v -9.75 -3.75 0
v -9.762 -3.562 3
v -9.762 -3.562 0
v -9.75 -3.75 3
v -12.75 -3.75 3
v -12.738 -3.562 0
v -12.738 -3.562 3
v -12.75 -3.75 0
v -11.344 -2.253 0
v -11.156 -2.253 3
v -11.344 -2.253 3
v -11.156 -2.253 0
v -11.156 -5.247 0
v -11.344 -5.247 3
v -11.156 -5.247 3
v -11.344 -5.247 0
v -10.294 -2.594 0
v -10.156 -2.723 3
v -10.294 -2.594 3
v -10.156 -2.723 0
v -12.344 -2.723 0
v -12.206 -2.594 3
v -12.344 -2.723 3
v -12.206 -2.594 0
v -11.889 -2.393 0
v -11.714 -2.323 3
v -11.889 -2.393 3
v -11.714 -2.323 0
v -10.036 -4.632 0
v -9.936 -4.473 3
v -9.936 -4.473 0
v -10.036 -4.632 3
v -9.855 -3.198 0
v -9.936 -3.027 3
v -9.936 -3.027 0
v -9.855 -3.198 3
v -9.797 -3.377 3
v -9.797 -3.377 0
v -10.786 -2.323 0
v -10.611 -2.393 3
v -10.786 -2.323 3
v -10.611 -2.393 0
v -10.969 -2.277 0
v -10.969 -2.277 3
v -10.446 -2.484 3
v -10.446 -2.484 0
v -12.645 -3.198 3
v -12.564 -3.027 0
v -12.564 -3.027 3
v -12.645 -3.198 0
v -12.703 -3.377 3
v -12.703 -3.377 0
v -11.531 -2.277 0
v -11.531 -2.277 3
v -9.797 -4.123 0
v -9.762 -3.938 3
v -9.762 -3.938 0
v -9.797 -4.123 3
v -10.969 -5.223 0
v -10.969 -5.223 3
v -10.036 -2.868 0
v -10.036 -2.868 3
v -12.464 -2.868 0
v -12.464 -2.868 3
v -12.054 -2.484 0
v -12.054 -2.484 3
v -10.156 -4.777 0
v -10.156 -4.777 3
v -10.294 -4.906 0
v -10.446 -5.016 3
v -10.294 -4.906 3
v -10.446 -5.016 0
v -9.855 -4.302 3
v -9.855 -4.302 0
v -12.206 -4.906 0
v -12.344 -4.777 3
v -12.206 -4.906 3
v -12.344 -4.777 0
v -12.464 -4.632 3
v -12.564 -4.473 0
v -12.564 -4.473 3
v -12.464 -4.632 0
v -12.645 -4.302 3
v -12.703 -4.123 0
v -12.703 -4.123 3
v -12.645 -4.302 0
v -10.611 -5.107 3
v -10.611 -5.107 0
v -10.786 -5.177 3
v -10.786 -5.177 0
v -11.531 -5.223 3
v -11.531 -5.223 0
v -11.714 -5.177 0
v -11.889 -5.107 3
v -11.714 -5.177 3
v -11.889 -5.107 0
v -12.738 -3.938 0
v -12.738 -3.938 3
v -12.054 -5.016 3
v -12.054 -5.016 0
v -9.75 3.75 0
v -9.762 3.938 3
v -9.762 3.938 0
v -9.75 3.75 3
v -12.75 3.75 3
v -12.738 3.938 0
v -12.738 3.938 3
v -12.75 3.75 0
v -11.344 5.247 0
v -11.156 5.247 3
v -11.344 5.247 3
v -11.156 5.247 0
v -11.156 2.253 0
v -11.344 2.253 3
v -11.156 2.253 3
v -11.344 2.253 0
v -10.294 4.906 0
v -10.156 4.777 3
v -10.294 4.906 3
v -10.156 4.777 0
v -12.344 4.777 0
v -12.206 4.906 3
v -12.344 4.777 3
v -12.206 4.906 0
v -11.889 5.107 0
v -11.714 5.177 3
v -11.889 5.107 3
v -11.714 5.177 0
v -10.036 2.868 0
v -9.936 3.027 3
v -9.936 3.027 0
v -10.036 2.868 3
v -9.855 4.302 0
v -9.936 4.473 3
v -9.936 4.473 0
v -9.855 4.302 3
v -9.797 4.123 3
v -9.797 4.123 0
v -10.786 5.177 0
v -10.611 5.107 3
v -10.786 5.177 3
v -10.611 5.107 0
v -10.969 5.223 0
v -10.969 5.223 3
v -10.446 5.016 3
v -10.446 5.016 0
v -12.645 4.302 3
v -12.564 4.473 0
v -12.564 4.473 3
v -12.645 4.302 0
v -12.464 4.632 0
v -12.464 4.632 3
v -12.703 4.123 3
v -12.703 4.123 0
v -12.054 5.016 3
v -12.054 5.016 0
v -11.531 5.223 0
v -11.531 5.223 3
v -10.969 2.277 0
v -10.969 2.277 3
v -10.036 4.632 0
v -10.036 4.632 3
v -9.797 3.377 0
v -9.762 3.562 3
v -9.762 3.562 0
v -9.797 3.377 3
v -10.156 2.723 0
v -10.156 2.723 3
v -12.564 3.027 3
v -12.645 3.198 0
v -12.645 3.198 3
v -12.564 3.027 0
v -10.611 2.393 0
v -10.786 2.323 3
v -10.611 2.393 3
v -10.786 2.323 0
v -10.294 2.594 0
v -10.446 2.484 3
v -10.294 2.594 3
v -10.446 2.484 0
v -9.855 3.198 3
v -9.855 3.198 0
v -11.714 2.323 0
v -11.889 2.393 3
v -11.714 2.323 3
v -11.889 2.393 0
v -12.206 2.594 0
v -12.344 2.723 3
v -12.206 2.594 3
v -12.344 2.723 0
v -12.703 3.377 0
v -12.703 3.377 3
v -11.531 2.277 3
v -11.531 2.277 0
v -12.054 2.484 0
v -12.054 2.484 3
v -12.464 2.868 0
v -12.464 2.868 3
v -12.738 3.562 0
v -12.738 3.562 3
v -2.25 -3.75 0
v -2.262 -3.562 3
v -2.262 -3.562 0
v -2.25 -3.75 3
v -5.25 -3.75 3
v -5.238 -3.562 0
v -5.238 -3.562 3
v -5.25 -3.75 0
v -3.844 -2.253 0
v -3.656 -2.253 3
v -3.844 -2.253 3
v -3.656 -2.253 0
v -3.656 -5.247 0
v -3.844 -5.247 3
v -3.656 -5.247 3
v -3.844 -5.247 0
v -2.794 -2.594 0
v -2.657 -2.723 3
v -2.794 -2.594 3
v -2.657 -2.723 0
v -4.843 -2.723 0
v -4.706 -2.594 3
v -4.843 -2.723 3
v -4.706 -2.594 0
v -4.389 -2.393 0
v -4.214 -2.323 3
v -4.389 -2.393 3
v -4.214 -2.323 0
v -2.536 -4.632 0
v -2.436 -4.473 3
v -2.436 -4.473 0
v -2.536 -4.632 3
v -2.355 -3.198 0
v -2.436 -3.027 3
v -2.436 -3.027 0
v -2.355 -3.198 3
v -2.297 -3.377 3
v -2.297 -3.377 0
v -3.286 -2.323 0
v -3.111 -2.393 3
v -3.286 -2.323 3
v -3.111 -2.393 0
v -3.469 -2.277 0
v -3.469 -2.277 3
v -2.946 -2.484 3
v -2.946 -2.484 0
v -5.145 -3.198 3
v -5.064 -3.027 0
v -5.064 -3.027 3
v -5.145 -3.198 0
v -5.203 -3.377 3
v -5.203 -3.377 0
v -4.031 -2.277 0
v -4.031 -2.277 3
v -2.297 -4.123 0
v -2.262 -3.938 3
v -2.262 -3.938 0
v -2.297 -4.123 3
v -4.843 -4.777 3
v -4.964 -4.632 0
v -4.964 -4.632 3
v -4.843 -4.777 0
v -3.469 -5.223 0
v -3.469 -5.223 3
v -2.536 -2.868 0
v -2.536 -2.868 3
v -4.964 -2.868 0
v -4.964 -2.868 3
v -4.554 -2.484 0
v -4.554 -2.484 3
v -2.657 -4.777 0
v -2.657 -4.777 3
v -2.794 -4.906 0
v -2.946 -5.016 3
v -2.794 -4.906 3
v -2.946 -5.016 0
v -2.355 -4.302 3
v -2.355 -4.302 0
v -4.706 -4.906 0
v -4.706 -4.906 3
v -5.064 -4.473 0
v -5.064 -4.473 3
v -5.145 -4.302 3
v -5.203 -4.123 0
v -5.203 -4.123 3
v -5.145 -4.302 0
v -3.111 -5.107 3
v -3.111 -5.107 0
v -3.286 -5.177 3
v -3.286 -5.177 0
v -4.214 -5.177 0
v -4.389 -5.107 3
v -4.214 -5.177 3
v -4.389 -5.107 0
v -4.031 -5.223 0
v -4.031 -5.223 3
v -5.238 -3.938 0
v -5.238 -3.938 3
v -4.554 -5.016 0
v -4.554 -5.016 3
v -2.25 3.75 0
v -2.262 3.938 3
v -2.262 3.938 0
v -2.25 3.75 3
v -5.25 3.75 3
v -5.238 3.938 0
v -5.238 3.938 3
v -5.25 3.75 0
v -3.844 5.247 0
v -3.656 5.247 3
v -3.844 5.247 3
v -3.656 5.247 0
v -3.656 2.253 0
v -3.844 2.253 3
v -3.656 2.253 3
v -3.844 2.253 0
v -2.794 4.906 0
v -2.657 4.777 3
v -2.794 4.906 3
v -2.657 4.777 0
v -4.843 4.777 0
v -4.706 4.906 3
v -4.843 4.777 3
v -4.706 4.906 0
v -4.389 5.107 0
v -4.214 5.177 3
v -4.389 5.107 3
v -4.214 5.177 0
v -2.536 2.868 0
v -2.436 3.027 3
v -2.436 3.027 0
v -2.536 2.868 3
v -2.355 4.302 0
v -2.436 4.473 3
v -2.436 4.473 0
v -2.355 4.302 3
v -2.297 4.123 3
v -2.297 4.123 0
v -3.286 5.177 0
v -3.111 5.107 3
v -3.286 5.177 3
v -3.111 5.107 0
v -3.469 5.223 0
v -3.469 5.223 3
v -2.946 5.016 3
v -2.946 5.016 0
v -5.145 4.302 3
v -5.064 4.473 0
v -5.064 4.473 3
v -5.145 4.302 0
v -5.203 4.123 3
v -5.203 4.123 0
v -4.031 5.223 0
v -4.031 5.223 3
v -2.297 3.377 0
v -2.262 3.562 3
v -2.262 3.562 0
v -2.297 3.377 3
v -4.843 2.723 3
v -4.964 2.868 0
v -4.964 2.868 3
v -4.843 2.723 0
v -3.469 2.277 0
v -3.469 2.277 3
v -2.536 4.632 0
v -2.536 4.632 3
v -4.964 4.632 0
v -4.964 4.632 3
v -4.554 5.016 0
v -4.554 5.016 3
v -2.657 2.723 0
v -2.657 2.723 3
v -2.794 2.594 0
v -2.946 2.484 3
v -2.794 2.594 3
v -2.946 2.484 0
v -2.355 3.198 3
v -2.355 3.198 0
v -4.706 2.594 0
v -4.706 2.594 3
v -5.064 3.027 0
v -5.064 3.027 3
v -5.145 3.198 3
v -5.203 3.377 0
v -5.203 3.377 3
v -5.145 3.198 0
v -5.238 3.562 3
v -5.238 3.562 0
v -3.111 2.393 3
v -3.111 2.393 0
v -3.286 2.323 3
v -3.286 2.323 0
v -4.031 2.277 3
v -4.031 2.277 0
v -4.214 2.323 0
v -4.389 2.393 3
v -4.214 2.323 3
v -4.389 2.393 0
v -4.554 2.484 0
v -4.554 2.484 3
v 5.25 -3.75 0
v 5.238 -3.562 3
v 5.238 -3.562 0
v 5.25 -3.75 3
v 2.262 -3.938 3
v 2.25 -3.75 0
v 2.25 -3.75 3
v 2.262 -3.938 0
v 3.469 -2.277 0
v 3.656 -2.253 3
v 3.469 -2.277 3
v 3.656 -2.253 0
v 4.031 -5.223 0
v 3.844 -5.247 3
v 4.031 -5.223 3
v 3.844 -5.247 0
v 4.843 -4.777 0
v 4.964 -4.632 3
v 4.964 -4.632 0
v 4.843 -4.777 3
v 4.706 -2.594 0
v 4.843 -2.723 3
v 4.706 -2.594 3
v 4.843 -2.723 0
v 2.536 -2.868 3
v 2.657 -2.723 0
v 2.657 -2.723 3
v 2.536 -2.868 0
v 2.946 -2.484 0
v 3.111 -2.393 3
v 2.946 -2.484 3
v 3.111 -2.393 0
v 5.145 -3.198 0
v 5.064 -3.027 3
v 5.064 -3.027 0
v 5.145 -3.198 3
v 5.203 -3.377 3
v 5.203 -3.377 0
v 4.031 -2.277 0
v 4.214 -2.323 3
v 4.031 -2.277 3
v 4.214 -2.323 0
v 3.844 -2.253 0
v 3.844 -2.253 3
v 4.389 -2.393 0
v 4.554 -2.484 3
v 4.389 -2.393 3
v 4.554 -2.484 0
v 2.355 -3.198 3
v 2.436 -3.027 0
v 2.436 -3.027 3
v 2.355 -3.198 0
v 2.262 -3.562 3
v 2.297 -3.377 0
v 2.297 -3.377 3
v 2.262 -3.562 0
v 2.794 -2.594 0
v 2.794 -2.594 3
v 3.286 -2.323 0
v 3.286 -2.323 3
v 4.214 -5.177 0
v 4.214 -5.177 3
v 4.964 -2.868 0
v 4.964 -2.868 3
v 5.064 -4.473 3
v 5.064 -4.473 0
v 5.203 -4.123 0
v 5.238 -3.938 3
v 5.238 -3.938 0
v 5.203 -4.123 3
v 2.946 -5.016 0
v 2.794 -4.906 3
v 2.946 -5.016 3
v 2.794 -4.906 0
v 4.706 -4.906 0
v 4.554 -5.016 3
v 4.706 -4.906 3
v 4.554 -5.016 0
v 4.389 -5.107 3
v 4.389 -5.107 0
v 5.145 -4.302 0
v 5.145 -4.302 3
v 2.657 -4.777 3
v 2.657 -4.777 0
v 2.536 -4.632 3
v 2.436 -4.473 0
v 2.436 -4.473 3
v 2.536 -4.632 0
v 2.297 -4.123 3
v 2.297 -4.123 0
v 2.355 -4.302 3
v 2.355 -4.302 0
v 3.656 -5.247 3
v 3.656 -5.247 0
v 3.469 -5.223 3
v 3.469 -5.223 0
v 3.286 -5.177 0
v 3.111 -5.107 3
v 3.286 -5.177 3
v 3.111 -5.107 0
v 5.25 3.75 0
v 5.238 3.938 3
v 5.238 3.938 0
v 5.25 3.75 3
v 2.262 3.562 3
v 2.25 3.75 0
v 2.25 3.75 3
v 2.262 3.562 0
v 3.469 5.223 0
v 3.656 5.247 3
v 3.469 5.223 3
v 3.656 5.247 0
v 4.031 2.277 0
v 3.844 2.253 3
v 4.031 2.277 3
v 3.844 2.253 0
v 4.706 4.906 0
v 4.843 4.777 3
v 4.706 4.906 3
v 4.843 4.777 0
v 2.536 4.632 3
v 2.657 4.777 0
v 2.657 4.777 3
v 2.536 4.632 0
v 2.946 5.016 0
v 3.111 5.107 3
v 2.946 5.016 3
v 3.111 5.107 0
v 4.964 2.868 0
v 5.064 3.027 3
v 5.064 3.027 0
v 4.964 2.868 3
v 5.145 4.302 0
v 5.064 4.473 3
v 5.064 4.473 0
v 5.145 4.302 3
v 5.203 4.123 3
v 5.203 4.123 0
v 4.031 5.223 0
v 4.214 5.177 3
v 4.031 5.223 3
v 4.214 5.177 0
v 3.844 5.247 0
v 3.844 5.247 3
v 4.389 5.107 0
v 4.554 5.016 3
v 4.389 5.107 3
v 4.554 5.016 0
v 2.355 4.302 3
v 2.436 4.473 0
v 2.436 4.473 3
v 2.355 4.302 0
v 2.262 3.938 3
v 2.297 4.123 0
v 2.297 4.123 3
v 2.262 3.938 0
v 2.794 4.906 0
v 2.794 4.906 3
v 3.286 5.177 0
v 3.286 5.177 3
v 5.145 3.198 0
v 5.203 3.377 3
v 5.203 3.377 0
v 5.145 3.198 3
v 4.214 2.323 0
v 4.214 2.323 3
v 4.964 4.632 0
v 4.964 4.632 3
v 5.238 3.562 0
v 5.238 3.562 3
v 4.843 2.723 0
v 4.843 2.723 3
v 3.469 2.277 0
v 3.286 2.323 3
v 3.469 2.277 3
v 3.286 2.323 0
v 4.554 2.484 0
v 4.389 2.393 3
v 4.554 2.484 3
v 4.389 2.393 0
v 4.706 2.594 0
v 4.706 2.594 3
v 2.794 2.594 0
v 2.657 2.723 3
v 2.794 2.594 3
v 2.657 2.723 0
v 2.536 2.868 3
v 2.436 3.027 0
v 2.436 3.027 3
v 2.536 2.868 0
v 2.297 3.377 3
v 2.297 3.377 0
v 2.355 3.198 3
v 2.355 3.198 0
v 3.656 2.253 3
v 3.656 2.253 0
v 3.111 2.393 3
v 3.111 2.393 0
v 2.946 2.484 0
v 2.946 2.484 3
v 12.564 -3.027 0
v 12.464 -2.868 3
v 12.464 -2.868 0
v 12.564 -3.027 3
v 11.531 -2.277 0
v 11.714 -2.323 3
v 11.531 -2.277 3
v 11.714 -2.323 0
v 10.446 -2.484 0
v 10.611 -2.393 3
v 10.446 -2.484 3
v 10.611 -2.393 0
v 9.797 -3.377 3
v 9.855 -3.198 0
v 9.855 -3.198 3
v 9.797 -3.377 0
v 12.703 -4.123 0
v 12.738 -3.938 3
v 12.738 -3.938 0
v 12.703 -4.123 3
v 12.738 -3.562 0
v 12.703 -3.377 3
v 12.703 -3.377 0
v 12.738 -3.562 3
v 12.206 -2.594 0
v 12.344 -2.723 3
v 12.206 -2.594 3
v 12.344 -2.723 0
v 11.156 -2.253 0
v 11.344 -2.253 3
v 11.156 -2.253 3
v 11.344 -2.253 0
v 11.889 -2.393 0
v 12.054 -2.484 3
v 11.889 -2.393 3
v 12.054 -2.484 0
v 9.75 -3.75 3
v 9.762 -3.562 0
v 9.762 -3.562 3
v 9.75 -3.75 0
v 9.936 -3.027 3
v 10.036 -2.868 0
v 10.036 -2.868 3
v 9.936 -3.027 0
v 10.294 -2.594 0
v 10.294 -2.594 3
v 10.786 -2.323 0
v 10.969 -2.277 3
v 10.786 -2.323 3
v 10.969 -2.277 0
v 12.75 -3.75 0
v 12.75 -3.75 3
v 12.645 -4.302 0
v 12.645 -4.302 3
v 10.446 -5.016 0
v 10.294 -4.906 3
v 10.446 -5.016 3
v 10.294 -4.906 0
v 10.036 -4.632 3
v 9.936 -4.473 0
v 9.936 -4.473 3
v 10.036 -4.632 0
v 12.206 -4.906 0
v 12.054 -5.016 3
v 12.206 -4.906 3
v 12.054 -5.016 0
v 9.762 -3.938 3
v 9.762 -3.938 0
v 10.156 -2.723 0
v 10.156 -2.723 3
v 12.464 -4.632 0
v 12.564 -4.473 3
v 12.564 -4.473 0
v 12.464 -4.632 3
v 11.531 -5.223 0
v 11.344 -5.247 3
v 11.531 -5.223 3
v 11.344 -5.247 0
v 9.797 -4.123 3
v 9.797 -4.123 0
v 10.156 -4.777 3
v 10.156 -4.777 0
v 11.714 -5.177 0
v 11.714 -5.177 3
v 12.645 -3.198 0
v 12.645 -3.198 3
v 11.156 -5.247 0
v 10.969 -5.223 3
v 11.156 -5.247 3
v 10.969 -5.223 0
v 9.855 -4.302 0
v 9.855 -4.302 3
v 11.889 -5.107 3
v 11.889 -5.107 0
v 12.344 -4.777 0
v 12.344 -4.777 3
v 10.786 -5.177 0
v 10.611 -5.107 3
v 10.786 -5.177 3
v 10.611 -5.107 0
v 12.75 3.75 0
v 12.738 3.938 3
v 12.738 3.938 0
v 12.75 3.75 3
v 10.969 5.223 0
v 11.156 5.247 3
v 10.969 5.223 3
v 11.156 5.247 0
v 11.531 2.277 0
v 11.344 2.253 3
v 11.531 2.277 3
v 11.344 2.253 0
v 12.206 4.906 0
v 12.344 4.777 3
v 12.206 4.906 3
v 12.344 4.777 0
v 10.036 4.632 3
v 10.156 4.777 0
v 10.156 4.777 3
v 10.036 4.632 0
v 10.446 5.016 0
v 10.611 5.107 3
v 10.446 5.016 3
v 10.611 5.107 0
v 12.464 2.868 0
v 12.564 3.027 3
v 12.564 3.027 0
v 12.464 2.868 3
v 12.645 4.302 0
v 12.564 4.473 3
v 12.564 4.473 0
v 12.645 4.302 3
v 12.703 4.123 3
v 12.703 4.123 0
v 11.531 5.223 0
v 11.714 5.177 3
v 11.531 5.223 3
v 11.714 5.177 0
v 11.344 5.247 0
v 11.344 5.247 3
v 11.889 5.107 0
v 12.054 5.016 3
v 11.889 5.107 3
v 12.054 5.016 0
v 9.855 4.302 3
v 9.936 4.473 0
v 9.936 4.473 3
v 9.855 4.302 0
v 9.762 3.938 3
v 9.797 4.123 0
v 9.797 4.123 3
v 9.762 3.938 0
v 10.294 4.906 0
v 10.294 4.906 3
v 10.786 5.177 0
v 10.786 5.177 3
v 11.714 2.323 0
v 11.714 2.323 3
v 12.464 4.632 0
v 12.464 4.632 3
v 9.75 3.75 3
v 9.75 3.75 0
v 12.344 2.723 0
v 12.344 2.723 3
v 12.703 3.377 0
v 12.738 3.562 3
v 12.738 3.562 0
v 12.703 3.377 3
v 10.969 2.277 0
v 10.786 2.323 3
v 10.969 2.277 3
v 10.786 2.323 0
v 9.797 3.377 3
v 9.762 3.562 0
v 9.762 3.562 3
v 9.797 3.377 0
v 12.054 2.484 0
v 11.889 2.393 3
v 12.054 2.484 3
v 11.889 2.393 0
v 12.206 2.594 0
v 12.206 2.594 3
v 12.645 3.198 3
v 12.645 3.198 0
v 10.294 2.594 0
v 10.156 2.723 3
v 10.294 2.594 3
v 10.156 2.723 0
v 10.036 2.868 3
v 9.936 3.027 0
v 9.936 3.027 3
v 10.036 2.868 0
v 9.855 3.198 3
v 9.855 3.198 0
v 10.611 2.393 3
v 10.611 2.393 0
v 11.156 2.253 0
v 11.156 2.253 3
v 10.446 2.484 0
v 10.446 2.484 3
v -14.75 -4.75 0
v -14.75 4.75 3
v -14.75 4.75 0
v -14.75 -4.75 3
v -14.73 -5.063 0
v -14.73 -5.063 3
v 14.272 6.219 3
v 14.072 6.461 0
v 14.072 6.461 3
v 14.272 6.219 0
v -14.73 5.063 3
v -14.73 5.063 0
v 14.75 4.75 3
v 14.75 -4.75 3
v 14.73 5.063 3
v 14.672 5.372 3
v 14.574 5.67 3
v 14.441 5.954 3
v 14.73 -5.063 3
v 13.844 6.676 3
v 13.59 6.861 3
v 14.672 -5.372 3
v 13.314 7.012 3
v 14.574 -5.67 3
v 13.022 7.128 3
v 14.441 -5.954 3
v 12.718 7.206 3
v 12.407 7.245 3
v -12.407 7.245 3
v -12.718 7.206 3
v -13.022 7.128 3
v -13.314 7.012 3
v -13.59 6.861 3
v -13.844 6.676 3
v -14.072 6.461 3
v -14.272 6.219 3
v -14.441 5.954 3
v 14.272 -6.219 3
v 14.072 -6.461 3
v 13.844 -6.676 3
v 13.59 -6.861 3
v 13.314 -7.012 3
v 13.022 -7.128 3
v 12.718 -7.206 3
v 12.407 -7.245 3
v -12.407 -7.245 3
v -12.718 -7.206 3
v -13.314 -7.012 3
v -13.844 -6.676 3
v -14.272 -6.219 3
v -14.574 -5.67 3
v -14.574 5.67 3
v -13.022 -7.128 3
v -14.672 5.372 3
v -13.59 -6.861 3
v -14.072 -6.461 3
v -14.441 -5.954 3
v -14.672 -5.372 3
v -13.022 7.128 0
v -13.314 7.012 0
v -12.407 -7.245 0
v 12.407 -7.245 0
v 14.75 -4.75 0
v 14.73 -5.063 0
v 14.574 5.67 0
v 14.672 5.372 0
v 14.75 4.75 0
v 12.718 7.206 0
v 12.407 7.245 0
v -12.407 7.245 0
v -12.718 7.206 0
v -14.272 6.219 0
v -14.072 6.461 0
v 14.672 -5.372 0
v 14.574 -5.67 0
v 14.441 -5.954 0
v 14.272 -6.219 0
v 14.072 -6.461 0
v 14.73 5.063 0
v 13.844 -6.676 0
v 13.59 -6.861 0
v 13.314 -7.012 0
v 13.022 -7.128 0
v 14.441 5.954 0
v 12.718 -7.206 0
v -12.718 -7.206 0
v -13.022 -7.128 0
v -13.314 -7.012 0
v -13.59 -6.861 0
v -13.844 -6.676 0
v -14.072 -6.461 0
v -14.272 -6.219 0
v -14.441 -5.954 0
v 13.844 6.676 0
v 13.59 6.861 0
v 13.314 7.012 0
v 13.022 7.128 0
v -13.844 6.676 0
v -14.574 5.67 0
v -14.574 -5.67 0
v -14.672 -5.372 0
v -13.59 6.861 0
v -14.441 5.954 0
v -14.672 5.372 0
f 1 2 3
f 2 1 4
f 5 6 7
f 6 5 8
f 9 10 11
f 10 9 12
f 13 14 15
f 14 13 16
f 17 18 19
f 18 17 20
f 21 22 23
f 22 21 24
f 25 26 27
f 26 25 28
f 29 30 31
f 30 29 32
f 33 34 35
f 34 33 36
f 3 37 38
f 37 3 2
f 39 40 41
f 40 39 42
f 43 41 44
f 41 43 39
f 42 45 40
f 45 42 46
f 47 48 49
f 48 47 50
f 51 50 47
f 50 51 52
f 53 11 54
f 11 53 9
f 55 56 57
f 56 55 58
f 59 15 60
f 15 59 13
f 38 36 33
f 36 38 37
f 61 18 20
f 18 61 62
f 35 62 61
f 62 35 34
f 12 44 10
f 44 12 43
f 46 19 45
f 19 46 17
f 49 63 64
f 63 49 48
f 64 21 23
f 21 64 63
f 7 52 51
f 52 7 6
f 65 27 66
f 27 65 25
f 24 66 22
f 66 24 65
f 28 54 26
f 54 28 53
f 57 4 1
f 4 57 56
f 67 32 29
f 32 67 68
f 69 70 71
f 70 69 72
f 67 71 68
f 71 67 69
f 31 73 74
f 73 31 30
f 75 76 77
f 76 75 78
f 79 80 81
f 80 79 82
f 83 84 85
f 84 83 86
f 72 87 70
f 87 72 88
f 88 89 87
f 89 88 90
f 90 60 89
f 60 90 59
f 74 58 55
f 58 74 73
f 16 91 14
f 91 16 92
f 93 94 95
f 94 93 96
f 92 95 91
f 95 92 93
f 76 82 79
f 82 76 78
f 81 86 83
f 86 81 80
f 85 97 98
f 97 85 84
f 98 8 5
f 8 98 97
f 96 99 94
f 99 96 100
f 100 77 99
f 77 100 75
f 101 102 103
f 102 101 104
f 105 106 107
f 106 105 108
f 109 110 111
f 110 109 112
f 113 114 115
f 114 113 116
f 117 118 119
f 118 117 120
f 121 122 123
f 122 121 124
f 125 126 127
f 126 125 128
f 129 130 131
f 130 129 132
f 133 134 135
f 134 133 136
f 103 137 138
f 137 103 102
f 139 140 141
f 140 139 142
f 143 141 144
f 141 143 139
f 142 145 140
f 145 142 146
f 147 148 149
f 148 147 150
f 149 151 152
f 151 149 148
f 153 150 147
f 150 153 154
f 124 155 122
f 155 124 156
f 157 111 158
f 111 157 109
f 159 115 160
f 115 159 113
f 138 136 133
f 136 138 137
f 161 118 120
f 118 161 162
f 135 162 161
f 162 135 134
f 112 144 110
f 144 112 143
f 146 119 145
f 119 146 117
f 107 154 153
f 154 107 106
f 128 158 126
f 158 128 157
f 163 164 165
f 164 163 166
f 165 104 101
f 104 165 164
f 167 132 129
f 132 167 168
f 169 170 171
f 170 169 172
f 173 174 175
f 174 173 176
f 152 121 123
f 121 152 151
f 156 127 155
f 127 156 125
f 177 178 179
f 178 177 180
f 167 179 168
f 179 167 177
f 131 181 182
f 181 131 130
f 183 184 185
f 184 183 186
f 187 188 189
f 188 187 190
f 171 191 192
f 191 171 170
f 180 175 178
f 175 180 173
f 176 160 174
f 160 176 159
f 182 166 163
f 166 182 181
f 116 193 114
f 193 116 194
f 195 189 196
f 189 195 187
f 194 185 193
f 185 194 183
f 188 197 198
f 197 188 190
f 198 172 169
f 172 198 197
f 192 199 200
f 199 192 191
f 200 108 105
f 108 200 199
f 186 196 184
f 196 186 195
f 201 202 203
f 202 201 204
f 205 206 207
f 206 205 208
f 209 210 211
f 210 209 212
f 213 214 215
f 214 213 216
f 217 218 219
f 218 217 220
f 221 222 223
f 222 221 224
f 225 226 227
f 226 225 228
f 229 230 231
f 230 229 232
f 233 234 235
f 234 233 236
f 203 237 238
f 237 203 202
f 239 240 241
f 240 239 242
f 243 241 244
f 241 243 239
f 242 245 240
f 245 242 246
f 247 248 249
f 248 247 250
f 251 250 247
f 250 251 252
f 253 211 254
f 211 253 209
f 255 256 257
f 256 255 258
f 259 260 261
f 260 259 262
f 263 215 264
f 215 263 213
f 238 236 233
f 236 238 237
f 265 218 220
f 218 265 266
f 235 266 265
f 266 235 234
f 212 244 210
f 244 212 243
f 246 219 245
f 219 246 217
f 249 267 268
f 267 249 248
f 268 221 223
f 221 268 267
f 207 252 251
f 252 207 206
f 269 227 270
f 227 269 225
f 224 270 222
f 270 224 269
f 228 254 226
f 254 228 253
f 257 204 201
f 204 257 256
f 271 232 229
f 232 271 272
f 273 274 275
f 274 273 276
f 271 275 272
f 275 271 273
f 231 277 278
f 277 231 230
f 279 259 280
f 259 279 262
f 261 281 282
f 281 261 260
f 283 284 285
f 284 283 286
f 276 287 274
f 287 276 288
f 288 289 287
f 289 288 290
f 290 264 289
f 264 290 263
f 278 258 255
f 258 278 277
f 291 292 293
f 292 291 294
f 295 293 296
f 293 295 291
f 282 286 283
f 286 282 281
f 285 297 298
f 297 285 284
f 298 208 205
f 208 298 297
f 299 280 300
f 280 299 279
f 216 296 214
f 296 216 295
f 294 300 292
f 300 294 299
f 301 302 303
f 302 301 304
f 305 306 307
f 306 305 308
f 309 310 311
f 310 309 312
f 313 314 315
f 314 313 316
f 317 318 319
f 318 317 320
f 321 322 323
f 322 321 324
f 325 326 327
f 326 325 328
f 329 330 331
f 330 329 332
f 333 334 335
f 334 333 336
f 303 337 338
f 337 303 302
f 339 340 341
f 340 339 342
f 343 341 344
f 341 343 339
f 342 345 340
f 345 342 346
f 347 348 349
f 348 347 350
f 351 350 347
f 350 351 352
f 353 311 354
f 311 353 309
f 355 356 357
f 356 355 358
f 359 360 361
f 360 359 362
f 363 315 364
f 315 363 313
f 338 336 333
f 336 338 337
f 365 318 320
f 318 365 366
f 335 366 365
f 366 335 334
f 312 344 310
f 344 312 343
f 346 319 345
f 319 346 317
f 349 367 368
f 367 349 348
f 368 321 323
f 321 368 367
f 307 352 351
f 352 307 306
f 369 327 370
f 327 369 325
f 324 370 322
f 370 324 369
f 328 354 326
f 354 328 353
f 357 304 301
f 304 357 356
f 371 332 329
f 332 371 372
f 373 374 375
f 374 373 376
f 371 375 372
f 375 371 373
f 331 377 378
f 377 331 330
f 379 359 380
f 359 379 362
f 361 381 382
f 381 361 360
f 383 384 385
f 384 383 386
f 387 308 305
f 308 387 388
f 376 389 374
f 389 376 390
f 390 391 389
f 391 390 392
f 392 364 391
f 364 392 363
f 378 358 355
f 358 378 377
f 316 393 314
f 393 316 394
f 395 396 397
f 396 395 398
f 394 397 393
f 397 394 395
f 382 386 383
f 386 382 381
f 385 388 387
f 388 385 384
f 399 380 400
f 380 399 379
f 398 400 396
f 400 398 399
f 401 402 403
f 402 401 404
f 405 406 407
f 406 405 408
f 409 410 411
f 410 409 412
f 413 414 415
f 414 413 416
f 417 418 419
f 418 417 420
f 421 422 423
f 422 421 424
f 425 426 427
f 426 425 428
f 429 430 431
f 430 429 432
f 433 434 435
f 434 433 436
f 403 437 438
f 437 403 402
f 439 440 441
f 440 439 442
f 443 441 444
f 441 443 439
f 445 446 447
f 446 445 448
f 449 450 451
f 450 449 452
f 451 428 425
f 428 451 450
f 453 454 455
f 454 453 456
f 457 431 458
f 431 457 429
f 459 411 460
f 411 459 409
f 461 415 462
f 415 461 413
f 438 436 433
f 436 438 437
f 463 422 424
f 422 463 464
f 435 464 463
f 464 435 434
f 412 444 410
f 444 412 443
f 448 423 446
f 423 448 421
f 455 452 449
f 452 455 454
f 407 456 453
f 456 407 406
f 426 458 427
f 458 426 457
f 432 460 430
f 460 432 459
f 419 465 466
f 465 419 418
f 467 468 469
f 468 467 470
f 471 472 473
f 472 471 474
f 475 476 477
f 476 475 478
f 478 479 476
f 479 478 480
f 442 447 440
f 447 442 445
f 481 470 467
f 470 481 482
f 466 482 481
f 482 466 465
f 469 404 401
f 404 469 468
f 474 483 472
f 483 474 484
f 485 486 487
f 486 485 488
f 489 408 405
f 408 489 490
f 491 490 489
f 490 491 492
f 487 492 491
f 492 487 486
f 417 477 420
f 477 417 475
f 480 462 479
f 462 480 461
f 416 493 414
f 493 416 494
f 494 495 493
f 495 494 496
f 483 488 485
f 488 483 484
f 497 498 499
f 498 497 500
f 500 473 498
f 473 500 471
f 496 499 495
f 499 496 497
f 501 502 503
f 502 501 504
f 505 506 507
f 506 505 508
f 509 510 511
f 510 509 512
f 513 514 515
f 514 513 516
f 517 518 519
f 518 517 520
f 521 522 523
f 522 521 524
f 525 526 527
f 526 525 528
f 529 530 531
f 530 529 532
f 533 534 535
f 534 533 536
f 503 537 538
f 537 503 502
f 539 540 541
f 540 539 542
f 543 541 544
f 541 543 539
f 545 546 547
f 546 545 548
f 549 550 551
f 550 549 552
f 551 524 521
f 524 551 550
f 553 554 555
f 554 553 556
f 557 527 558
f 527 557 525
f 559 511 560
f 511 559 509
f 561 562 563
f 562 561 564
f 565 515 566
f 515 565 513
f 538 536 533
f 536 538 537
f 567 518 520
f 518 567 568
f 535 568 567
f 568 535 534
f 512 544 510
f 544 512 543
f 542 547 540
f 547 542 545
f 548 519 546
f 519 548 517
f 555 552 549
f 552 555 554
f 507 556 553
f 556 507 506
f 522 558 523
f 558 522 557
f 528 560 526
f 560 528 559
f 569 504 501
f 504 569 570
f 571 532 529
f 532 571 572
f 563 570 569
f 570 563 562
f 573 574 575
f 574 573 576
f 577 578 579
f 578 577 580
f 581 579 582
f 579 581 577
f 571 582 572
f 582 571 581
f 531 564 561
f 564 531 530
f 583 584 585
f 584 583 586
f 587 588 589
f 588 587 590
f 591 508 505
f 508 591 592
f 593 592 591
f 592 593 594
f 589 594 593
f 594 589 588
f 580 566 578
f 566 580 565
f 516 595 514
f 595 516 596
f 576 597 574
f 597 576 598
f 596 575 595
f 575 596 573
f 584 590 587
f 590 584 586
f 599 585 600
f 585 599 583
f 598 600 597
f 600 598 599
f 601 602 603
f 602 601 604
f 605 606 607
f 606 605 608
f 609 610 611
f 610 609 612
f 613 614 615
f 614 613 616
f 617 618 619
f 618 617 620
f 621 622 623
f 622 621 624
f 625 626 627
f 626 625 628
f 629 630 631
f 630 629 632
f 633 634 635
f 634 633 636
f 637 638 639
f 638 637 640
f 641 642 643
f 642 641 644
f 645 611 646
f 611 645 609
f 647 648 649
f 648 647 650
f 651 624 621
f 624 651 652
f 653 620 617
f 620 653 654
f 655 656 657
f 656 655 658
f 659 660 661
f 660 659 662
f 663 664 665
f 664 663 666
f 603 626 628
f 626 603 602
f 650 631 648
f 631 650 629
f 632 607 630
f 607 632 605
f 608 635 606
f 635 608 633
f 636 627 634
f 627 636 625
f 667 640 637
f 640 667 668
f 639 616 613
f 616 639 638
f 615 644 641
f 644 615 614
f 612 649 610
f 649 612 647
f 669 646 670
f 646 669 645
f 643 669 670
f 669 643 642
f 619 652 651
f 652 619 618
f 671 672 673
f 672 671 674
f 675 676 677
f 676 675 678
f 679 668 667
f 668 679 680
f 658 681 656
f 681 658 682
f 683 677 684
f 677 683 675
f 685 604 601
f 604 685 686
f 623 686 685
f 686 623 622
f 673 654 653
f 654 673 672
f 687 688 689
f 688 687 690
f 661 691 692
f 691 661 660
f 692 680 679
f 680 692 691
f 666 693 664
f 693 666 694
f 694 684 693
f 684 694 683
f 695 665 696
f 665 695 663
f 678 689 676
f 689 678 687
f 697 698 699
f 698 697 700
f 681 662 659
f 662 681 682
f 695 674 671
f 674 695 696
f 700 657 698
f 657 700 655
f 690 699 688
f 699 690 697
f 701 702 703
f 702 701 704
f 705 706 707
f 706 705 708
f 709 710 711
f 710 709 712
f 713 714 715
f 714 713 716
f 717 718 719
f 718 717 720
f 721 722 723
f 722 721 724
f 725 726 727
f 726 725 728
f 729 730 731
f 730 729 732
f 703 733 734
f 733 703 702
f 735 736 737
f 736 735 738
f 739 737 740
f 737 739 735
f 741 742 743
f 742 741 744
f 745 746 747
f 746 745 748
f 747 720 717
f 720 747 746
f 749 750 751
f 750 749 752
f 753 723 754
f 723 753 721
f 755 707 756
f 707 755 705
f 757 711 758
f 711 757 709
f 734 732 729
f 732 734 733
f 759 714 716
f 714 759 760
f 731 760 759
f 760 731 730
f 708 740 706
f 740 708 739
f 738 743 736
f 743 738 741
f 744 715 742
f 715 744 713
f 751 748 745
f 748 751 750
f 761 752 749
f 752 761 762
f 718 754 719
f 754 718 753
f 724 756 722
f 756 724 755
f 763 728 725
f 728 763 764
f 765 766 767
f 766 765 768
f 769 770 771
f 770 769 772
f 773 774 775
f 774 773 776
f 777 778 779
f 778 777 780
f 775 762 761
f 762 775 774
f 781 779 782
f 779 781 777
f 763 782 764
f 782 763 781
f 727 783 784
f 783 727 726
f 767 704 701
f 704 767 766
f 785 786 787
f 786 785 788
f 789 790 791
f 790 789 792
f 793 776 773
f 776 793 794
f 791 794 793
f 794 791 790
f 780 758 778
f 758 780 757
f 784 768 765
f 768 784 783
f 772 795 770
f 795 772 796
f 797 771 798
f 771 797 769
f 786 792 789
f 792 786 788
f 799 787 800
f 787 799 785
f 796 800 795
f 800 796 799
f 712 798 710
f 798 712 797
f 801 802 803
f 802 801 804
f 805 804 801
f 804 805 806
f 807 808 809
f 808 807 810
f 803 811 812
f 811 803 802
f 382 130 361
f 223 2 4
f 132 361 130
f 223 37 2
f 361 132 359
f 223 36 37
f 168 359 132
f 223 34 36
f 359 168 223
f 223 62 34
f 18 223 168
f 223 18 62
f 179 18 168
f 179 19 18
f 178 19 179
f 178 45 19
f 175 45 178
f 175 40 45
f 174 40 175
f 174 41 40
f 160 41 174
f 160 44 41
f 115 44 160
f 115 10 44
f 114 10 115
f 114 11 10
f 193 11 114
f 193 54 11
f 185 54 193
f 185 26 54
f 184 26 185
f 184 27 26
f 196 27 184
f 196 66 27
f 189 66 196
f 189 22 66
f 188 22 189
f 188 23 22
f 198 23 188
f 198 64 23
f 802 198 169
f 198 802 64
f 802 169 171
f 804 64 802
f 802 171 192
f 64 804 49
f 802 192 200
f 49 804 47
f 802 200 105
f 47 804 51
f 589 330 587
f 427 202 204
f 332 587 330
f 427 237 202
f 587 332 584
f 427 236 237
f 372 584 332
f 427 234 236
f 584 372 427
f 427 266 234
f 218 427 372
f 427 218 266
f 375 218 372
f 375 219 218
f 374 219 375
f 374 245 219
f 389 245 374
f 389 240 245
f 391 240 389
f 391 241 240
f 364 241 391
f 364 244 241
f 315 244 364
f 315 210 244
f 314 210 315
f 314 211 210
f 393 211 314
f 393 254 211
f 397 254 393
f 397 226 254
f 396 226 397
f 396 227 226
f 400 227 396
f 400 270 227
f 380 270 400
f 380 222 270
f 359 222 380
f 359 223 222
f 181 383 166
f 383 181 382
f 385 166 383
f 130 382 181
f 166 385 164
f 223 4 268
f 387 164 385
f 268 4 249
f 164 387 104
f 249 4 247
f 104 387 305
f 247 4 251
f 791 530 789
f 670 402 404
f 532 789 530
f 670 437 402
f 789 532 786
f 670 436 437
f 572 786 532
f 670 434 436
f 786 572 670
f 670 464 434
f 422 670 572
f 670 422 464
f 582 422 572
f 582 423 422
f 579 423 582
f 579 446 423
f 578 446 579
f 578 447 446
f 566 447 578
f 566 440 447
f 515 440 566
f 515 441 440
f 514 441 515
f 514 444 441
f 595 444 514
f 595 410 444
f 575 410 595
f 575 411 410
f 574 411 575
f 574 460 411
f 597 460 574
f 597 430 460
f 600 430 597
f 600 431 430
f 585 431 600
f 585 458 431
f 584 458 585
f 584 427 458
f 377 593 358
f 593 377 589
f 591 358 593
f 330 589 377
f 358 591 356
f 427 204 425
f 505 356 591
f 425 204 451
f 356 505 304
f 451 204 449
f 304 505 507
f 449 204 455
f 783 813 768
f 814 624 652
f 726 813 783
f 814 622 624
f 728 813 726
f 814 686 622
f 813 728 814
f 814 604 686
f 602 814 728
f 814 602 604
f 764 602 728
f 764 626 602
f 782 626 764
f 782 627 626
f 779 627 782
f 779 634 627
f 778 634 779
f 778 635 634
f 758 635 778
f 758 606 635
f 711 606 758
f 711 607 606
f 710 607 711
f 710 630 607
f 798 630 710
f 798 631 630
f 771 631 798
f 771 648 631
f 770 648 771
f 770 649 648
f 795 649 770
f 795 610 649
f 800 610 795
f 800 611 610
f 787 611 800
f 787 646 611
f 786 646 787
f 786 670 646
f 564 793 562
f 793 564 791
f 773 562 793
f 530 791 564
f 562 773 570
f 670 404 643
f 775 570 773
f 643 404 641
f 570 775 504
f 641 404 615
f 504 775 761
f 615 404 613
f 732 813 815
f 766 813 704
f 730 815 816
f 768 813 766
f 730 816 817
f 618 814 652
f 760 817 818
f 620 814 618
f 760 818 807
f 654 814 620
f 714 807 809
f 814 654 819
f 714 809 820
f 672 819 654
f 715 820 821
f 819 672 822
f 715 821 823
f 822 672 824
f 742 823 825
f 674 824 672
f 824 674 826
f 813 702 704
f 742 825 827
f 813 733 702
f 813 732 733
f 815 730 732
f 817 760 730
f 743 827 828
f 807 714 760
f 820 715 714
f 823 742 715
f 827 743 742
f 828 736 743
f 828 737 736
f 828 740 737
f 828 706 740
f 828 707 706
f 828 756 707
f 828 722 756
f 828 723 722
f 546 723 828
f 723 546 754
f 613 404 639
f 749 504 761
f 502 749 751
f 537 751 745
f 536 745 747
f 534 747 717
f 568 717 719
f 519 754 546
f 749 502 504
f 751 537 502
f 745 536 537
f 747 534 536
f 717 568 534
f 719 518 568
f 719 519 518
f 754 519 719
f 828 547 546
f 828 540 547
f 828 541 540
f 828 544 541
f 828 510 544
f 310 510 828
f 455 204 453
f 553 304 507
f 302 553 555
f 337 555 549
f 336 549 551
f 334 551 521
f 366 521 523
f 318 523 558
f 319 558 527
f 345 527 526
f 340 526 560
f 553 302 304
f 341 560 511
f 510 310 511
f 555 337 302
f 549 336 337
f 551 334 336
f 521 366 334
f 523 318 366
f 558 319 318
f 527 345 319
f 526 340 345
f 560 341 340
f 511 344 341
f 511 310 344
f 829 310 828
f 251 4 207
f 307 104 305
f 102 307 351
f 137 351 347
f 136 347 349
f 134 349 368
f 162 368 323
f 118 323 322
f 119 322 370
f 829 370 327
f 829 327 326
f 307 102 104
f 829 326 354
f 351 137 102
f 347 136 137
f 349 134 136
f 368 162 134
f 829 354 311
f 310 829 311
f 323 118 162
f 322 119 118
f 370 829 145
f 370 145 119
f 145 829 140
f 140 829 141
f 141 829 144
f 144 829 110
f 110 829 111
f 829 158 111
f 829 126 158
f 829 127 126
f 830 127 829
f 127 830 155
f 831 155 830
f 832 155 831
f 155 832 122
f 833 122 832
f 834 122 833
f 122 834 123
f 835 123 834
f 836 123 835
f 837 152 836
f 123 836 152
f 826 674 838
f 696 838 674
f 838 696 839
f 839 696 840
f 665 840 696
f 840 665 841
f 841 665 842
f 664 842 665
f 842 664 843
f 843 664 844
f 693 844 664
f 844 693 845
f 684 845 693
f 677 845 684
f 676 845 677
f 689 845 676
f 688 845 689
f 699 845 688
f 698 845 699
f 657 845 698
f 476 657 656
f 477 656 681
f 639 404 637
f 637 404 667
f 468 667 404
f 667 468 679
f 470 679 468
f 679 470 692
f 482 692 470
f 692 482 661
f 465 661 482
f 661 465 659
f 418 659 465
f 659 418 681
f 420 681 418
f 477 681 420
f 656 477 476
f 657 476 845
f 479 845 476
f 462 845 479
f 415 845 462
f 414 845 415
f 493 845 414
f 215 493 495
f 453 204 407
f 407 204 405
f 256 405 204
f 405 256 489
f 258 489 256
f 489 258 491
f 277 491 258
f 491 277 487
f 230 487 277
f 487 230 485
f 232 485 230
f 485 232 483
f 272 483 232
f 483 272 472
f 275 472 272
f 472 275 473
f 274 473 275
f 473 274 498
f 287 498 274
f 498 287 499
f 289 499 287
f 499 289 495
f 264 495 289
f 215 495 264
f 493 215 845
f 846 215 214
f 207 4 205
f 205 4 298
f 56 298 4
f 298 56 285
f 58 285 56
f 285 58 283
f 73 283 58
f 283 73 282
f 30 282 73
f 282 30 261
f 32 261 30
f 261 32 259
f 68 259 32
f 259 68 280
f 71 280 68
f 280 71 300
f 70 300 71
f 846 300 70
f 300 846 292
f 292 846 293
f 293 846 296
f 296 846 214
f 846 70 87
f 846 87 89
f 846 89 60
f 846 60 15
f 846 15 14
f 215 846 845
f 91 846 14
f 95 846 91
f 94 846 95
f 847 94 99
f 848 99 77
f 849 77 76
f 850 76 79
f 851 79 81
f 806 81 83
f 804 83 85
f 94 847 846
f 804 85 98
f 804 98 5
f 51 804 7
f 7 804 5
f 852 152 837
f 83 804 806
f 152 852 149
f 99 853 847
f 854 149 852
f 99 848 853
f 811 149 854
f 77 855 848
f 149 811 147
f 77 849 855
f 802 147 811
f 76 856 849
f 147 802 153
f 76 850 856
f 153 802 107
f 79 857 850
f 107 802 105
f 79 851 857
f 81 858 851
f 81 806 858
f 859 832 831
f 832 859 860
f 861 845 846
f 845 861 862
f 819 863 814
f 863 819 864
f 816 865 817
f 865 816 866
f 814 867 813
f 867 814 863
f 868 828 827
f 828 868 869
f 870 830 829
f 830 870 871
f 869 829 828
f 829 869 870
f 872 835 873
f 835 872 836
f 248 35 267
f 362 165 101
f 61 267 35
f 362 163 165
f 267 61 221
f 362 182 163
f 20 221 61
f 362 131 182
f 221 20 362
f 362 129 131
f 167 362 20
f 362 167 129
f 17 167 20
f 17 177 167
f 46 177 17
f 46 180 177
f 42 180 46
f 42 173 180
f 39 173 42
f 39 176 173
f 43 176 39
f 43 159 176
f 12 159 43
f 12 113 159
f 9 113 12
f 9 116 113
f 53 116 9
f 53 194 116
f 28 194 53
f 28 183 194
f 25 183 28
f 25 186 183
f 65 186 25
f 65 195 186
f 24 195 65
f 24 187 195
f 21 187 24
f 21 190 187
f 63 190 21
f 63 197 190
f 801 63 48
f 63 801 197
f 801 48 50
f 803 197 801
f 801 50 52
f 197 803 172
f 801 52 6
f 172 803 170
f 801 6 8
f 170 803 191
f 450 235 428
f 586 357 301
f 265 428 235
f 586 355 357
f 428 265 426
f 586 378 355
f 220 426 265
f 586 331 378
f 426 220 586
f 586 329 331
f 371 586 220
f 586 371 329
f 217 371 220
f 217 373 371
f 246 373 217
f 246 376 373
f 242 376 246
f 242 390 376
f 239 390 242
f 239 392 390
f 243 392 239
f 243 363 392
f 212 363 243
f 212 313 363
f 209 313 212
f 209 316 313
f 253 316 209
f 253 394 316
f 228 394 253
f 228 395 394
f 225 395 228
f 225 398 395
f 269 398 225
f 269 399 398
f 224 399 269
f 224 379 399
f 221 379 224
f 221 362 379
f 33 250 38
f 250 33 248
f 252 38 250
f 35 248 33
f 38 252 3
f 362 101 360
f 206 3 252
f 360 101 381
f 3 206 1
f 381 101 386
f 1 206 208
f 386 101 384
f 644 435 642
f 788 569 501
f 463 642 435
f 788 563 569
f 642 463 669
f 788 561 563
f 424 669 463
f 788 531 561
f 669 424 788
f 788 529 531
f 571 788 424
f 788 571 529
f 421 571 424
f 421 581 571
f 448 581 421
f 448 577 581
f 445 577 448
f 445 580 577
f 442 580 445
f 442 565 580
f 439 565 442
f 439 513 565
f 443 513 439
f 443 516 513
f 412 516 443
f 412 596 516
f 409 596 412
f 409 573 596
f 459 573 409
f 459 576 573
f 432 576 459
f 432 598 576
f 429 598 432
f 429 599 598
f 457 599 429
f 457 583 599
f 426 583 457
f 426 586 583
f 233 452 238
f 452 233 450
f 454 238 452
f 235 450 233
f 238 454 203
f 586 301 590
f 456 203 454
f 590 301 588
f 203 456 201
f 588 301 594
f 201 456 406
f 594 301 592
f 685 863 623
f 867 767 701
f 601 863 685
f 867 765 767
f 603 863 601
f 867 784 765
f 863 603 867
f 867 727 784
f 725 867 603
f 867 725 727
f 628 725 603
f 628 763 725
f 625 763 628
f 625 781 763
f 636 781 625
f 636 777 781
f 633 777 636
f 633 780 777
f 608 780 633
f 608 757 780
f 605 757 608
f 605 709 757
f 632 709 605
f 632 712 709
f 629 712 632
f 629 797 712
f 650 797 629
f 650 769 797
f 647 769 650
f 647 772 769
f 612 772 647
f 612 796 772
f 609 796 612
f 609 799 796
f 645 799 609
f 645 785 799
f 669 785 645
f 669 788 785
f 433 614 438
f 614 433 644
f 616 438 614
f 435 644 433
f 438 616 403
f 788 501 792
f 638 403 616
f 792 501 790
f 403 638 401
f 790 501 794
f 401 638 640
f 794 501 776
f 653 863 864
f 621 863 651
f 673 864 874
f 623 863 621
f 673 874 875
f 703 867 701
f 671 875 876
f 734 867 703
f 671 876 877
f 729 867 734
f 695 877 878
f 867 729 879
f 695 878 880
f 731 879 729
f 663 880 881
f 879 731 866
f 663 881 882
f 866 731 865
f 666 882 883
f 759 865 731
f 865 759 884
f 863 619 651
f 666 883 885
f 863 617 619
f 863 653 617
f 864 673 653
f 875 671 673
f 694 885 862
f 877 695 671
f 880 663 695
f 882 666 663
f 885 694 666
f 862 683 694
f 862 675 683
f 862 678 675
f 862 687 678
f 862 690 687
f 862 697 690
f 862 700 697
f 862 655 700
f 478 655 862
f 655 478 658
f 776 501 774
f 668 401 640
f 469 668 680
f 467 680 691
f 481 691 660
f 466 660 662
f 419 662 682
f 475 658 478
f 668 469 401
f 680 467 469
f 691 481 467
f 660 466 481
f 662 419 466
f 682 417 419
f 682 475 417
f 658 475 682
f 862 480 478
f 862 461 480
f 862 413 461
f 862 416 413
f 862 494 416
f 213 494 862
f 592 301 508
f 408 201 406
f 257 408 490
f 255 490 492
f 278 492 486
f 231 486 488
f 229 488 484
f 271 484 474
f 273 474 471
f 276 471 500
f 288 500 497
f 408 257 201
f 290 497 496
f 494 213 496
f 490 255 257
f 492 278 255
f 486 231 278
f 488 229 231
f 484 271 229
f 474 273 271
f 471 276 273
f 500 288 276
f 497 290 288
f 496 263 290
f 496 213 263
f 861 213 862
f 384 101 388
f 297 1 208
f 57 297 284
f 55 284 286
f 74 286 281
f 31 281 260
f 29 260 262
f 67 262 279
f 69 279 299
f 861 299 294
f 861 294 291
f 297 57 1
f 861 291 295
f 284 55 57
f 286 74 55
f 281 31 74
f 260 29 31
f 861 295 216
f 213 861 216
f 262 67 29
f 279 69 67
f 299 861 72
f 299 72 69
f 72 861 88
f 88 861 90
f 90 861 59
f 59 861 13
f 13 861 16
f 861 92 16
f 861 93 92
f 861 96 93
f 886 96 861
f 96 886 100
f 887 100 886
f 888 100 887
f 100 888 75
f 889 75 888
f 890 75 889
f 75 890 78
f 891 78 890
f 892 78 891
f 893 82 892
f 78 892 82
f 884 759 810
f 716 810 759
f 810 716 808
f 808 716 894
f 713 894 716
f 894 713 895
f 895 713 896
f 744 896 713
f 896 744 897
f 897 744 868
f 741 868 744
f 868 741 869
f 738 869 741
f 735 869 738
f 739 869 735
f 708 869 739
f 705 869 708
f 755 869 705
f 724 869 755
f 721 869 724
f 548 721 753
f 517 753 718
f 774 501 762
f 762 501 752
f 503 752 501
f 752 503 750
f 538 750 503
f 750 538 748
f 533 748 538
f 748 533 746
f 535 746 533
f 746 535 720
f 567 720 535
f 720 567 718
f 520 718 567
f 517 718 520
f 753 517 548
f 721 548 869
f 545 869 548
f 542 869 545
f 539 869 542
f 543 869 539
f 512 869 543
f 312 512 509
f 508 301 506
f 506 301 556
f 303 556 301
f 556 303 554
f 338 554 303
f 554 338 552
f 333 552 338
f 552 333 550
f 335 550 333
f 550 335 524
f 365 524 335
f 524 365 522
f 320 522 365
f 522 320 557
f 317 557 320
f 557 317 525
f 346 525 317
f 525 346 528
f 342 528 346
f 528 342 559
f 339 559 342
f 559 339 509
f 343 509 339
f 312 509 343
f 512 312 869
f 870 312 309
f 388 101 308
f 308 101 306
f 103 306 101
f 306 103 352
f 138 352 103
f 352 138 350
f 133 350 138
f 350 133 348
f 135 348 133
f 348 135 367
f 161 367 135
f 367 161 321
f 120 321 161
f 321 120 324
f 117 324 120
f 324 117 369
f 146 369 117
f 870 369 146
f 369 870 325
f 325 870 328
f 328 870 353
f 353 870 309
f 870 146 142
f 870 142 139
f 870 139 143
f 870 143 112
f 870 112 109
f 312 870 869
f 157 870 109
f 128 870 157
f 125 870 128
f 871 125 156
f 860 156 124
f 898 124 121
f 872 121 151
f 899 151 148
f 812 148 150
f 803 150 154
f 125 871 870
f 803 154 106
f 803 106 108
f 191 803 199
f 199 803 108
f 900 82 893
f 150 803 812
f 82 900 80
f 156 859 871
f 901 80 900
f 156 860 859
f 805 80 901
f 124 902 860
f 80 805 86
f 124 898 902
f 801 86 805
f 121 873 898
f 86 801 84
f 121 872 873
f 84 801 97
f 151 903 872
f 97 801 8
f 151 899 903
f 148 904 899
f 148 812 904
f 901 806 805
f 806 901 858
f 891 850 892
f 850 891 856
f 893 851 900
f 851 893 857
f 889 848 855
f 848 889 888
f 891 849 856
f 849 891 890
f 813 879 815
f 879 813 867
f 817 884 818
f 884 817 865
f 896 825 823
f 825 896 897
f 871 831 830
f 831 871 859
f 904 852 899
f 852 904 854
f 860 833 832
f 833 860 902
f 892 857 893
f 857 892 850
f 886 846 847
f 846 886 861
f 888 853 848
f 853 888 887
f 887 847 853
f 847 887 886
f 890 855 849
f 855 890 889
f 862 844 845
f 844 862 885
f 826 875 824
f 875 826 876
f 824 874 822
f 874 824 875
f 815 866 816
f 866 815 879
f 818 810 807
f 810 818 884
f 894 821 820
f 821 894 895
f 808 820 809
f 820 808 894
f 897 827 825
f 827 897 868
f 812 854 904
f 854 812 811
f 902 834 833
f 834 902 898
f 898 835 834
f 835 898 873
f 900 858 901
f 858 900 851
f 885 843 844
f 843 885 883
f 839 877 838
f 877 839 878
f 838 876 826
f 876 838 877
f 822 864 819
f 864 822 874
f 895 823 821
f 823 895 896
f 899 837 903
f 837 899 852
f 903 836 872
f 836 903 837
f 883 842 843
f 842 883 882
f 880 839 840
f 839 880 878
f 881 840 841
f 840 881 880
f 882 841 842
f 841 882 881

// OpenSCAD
$fn = 50;


difference() {
	union() {
		translate(v = [0, 0, 0]) {
			rotate(a = [0, 0, 0]) {
				hull() {
					translate(v = [-12.2500000000, 4.7500000000, 0]) {
						rotate(a = [0, 0, 0]) {
							translate(v = [0, 0, 0]) {
								rotate(a = [0, 0, 0]) {
									cylinder(h = 3, r = 2.5000000000);
								}
							}
						}
					}
					translate(v = [12.2500000000, 4.7500000000, 0]) {
						rotate(a = [0, 0, 0]) {
							translate(v = [0, 0, 0]) {
								rotate(a = [0, 0, 0]) {
									cylinder(h = 3, r = 2.5000000000);
								}
							}
						}
					}
					translate(v = [-12.2500000000, -4.7500000000, 0]) {
						rotate(a = [0, 0, 0]) {
							translate(v = [0, 0, 0]) {
								rotate(a = [0, 0, 0]) {
									cylinder(h = 3, r = 2.5000000000);
								}
							}
						}
					}
					translate(v = [12.2500000000, -4.7500000000, 0]) {
						rotate(a = [0, 0, 0]) {
							translate(v = [0, 0, 0]) {
								rotate(a = [0, 0, 0]) {
									cylinder(h = 3, r = 2.5000000000);
								}
							}
						}
					}
				}
			}
		}
	}
	union() {
		translate(v = [-11.2500000000, -3.7500000000, 0]) {
			rotate(a = [0, 0, 0]) {
				translate(v = [0, 0, -50]) {
					rotate(a = [0, 0, 0]) {
						cylinder(h = 100, r = 1.5000000000);
					}
				}
			}
		}
		translate(v = [-11.2500000000, 3.7500000000, 0]) {
			rotate(a = [0, 0, 0]) {
				translate(v = [0, 0, -50]) {
					rotate(a = [0, 0, 0]) {
						cylinder(h = 100, r = 1.5000000000);
					}
				}
			}
		}
		translate(v = [-3.7500000000, -3.7500000000, 0]) {
			rotate(a = [0, 0, 0]) {
				translate(v = [0, 0, -50]) {
					rotate(a = [0, 0, 0]) {
						cylinder(h = 100, r = 1.5000000000);
					}
				}
			}
		}
		translate(v = [-3.7500000000, 3.7500000000, 0]) {
			rotate(a = [0, 0, 0]) {
				translate(v = [0, 0, -50]) {
					rotate(a = [0, 0, 0]) {
						cylinder(h = 100, r = 1.5000000000);
					}
				}
			}
		}
		translate(v = [3.7500000000, -3.7500000000, 0]) {
			rotate(a = [0, 0, 0]) {
				translate(v = [0, 0, -50]) {
					rotate(a = [0, 0, 0]) {
						cylinder(h = 100, r = 1.5000000000);
					}
				}
			}
		}
		translate(v = [3.7500000000, 3.7500000000, 0]) {
			rotate(a = [0, 0, 0]) {
				translate(v = [0, 0, -50]) {
					rotate(a = [0, 0, 0]) {
						cylinder(h = 100, r = 1.5000000000);
					}
				}
			}
		}
		translate(v = [11.2500000000, -3.7500000000, 0]) {
			rotate(a = [0, 0, 0]) {
				translate(v = [0, 0, -50]) {
					rotate(a = [0, 0, 0]) {
						cylinder(h = 100, r = 1.5000000000);
					}
				}
			}
		}
		translate(v = [11.2500000000, 3.7500000000, 0]) {
			rotate(a = [0, 0, 0]) {
				translate(v = [0, 0, -50]) {
					rotate(a = [0, 0, 0]) {
						cylinder(h = 100, r = 1.5000000000);
					}
				}
			}
		}
	}
}
